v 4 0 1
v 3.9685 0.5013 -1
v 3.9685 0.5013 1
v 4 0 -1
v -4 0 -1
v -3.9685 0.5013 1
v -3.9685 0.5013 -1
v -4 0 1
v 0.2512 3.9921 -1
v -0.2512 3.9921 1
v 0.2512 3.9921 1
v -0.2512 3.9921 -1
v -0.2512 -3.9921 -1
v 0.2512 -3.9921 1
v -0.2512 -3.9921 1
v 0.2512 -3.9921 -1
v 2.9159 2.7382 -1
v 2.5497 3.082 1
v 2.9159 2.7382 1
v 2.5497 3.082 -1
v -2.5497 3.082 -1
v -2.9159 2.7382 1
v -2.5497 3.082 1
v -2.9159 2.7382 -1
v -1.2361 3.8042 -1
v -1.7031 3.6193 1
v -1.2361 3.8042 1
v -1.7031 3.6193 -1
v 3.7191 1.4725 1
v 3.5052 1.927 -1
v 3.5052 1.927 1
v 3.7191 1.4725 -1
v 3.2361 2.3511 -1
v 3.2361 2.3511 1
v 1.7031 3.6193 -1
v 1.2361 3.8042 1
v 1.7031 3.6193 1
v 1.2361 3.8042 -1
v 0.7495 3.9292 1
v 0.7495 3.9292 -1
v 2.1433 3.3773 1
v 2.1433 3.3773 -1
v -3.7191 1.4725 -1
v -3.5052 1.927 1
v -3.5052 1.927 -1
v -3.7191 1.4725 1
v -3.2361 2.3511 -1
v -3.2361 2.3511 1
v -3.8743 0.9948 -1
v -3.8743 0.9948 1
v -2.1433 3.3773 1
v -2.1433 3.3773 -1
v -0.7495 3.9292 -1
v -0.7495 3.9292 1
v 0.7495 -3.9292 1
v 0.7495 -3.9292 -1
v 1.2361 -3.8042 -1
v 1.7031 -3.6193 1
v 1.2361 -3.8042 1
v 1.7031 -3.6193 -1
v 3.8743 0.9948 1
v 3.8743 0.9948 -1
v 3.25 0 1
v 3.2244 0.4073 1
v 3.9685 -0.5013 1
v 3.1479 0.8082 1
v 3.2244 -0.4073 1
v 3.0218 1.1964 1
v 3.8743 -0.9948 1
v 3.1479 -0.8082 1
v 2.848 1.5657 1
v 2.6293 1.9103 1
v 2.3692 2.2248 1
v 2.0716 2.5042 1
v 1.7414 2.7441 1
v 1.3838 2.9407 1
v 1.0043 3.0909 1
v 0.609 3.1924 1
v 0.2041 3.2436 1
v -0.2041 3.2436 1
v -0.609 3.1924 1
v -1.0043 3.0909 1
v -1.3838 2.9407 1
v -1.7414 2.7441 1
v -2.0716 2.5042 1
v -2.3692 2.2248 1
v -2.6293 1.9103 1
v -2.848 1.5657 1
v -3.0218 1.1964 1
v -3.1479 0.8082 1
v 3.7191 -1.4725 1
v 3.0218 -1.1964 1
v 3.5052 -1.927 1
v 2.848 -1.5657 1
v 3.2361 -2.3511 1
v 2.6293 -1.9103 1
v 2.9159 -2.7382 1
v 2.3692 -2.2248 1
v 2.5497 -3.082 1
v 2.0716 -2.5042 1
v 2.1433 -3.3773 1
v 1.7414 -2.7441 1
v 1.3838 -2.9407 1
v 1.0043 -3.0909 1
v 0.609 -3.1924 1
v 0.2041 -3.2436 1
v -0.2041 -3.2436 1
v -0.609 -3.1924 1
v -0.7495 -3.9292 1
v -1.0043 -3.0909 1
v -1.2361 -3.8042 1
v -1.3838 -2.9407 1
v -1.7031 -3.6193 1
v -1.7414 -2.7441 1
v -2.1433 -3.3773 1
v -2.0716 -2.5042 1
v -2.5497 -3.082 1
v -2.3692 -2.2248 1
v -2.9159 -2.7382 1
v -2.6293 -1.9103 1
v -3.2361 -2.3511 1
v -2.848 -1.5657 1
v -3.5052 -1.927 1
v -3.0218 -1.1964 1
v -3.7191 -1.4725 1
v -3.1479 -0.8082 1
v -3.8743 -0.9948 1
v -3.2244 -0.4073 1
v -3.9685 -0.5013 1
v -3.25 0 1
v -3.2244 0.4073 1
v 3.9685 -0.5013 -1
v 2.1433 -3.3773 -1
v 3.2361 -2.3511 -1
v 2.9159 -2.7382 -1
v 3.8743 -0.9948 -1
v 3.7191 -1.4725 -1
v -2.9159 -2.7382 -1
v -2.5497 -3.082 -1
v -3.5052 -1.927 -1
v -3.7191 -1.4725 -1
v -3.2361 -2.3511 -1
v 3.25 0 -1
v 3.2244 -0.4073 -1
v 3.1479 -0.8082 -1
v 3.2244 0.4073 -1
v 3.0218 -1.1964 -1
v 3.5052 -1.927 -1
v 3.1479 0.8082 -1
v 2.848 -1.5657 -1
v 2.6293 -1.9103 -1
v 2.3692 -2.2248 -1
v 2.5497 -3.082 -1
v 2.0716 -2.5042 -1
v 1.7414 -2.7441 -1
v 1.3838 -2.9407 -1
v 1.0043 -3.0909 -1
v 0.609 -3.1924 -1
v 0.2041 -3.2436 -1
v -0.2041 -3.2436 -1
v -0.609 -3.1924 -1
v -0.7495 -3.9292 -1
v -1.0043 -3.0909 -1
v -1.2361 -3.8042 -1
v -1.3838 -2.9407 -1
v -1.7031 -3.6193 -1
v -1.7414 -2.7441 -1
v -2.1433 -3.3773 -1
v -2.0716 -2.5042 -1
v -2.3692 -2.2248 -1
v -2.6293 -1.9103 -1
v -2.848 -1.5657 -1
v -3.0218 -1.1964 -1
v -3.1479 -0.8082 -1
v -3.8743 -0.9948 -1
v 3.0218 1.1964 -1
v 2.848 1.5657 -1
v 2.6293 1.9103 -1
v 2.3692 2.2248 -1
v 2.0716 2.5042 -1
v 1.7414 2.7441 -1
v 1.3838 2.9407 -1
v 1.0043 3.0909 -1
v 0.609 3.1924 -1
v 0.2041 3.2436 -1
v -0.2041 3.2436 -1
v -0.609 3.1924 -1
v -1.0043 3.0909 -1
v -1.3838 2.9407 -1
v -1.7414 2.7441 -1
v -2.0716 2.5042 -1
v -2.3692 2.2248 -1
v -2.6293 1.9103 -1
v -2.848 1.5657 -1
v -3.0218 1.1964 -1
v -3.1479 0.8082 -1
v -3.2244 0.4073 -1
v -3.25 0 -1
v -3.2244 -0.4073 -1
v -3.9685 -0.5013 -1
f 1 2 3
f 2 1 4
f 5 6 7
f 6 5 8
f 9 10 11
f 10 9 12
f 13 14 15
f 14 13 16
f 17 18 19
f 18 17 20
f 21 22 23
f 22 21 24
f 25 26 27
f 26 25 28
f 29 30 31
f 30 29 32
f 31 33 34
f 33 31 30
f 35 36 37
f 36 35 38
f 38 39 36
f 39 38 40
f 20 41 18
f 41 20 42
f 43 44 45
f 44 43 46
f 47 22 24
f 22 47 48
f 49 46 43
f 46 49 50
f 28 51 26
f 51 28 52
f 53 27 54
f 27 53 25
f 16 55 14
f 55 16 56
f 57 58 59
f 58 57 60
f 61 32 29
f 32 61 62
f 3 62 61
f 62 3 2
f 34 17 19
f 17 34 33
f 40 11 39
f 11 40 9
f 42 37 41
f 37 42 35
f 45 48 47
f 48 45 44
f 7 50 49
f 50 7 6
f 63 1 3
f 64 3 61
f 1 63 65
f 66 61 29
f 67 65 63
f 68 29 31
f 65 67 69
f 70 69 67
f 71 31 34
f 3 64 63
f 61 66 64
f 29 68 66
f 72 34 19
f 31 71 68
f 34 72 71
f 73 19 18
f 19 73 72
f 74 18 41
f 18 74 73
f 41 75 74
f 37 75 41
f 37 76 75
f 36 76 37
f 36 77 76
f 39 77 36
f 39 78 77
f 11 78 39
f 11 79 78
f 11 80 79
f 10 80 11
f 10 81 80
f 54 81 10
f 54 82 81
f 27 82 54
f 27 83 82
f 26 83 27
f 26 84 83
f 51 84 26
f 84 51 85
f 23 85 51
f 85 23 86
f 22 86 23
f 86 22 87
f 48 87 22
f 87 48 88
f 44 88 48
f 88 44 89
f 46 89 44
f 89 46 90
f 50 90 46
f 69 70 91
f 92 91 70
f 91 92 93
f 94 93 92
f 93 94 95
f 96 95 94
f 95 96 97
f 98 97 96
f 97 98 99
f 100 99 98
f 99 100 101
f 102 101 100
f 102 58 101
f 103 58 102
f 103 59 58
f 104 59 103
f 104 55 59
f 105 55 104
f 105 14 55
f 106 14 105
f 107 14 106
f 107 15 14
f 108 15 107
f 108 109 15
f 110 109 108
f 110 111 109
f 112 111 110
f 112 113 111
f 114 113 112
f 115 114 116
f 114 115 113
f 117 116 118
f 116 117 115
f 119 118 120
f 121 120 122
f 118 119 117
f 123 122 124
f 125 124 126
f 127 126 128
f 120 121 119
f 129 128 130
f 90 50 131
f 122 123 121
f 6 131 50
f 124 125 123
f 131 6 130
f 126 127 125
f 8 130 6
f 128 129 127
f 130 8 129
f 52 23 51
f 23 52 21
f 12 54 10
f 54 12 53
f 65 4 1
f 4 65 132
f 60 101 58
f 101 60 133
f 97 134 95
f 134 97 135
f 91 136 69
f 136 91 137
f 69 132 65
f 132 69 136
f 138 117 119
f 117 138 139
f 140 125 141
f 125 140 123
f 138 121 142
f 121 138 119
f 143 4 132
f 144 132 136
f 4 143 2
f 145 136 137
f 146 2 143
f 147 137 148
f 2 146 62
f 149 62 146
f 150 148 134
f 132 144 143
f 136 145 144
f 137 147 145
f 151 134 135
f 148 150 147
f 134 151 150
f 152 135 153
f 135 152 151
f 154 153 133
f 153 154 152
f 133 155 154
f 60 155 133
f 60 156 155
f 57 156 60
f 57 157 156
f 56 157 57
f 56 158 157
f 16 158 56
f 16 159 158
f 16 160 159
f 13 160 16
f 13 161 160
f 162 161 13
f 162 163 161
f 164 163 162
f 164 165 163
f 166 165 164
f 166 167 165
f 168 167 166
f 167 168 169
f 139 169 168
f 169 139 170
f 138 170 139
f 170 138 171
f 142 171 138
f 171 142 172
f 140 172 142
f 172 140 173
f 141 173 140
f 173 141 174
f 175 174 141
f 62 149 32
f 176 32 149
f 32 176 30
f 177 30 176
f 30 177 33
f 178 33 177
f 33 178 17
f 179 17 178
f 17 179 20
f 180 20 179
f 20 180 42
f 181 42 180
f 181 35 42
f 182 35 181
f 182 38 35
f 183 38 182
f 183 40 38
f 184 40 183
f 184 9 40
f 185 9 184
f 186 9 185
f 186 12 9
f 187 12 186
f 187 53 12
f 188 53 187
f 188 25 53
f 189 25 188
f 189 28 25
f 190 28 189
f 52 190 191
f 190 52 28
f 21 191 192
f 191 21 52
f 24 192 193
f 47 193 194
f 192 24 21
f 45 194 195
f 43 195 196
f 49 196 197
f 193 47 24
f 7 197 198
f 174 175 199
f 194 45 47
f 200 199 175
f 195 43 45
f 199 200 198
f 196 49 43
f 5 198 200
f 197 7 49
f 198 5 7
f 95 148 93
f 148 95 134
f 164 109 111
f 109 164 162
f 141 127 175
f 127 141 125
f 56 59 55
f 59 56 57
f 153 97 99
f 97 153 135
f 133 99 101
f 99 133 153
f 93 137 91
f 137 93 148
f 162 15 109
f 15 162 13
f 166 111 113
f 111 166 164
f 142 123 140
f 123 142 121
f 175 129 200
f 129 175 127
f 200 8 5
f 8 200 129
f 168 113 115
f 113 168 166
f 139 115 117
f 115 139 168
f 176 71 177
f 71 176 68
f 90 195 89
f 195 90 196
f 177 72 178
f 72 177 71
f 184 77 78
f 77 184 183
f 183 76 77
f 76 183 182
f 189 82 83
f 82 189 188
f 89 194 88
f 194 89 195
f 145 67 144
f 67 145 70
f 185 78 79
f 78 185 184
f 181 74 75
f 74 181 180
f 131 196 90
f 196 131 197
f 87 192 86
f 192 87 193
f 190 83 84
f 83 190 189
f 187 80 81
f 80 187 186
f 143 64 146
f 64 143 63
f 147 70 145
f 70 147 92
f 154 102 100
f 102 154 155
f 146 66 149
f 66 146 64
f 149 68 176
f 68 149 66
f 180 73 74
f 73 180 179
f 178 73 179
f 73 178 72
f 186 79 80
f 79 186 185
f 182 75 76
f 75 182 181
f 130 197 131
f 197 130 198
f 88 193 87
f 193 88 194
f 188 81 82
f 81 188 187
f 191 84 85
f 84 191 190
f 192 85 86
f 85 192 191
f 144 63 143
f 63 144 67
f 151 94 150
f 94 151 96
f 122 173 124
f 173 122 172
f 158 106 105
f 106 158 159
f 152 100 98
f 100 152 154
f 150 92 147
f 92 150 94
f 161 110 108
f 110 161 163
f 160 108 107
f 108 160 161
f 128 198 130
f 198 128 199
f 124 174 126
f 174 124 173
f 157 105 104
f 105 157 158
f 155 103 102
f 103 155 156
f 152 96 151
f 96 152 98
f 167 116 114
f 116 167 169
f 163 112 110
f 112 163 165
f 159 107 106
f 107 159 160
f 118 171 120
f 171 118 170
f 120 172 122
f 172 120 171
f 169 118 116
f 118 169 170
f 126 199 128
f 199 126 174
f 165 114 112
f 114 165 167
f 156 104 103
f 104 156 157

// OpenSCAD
$fn = 50;


difference() {
	union() {
		translate(v = [0, 0, -1.0000000000]) {
			cylinder(h = 2, r = 4.0000000000);
		}
	}
	union() {
		translate(v = [0, 0, -100.0000000000]) {
			cylinder(h = 200, r = 3.2500000000);
		}
	}
}
